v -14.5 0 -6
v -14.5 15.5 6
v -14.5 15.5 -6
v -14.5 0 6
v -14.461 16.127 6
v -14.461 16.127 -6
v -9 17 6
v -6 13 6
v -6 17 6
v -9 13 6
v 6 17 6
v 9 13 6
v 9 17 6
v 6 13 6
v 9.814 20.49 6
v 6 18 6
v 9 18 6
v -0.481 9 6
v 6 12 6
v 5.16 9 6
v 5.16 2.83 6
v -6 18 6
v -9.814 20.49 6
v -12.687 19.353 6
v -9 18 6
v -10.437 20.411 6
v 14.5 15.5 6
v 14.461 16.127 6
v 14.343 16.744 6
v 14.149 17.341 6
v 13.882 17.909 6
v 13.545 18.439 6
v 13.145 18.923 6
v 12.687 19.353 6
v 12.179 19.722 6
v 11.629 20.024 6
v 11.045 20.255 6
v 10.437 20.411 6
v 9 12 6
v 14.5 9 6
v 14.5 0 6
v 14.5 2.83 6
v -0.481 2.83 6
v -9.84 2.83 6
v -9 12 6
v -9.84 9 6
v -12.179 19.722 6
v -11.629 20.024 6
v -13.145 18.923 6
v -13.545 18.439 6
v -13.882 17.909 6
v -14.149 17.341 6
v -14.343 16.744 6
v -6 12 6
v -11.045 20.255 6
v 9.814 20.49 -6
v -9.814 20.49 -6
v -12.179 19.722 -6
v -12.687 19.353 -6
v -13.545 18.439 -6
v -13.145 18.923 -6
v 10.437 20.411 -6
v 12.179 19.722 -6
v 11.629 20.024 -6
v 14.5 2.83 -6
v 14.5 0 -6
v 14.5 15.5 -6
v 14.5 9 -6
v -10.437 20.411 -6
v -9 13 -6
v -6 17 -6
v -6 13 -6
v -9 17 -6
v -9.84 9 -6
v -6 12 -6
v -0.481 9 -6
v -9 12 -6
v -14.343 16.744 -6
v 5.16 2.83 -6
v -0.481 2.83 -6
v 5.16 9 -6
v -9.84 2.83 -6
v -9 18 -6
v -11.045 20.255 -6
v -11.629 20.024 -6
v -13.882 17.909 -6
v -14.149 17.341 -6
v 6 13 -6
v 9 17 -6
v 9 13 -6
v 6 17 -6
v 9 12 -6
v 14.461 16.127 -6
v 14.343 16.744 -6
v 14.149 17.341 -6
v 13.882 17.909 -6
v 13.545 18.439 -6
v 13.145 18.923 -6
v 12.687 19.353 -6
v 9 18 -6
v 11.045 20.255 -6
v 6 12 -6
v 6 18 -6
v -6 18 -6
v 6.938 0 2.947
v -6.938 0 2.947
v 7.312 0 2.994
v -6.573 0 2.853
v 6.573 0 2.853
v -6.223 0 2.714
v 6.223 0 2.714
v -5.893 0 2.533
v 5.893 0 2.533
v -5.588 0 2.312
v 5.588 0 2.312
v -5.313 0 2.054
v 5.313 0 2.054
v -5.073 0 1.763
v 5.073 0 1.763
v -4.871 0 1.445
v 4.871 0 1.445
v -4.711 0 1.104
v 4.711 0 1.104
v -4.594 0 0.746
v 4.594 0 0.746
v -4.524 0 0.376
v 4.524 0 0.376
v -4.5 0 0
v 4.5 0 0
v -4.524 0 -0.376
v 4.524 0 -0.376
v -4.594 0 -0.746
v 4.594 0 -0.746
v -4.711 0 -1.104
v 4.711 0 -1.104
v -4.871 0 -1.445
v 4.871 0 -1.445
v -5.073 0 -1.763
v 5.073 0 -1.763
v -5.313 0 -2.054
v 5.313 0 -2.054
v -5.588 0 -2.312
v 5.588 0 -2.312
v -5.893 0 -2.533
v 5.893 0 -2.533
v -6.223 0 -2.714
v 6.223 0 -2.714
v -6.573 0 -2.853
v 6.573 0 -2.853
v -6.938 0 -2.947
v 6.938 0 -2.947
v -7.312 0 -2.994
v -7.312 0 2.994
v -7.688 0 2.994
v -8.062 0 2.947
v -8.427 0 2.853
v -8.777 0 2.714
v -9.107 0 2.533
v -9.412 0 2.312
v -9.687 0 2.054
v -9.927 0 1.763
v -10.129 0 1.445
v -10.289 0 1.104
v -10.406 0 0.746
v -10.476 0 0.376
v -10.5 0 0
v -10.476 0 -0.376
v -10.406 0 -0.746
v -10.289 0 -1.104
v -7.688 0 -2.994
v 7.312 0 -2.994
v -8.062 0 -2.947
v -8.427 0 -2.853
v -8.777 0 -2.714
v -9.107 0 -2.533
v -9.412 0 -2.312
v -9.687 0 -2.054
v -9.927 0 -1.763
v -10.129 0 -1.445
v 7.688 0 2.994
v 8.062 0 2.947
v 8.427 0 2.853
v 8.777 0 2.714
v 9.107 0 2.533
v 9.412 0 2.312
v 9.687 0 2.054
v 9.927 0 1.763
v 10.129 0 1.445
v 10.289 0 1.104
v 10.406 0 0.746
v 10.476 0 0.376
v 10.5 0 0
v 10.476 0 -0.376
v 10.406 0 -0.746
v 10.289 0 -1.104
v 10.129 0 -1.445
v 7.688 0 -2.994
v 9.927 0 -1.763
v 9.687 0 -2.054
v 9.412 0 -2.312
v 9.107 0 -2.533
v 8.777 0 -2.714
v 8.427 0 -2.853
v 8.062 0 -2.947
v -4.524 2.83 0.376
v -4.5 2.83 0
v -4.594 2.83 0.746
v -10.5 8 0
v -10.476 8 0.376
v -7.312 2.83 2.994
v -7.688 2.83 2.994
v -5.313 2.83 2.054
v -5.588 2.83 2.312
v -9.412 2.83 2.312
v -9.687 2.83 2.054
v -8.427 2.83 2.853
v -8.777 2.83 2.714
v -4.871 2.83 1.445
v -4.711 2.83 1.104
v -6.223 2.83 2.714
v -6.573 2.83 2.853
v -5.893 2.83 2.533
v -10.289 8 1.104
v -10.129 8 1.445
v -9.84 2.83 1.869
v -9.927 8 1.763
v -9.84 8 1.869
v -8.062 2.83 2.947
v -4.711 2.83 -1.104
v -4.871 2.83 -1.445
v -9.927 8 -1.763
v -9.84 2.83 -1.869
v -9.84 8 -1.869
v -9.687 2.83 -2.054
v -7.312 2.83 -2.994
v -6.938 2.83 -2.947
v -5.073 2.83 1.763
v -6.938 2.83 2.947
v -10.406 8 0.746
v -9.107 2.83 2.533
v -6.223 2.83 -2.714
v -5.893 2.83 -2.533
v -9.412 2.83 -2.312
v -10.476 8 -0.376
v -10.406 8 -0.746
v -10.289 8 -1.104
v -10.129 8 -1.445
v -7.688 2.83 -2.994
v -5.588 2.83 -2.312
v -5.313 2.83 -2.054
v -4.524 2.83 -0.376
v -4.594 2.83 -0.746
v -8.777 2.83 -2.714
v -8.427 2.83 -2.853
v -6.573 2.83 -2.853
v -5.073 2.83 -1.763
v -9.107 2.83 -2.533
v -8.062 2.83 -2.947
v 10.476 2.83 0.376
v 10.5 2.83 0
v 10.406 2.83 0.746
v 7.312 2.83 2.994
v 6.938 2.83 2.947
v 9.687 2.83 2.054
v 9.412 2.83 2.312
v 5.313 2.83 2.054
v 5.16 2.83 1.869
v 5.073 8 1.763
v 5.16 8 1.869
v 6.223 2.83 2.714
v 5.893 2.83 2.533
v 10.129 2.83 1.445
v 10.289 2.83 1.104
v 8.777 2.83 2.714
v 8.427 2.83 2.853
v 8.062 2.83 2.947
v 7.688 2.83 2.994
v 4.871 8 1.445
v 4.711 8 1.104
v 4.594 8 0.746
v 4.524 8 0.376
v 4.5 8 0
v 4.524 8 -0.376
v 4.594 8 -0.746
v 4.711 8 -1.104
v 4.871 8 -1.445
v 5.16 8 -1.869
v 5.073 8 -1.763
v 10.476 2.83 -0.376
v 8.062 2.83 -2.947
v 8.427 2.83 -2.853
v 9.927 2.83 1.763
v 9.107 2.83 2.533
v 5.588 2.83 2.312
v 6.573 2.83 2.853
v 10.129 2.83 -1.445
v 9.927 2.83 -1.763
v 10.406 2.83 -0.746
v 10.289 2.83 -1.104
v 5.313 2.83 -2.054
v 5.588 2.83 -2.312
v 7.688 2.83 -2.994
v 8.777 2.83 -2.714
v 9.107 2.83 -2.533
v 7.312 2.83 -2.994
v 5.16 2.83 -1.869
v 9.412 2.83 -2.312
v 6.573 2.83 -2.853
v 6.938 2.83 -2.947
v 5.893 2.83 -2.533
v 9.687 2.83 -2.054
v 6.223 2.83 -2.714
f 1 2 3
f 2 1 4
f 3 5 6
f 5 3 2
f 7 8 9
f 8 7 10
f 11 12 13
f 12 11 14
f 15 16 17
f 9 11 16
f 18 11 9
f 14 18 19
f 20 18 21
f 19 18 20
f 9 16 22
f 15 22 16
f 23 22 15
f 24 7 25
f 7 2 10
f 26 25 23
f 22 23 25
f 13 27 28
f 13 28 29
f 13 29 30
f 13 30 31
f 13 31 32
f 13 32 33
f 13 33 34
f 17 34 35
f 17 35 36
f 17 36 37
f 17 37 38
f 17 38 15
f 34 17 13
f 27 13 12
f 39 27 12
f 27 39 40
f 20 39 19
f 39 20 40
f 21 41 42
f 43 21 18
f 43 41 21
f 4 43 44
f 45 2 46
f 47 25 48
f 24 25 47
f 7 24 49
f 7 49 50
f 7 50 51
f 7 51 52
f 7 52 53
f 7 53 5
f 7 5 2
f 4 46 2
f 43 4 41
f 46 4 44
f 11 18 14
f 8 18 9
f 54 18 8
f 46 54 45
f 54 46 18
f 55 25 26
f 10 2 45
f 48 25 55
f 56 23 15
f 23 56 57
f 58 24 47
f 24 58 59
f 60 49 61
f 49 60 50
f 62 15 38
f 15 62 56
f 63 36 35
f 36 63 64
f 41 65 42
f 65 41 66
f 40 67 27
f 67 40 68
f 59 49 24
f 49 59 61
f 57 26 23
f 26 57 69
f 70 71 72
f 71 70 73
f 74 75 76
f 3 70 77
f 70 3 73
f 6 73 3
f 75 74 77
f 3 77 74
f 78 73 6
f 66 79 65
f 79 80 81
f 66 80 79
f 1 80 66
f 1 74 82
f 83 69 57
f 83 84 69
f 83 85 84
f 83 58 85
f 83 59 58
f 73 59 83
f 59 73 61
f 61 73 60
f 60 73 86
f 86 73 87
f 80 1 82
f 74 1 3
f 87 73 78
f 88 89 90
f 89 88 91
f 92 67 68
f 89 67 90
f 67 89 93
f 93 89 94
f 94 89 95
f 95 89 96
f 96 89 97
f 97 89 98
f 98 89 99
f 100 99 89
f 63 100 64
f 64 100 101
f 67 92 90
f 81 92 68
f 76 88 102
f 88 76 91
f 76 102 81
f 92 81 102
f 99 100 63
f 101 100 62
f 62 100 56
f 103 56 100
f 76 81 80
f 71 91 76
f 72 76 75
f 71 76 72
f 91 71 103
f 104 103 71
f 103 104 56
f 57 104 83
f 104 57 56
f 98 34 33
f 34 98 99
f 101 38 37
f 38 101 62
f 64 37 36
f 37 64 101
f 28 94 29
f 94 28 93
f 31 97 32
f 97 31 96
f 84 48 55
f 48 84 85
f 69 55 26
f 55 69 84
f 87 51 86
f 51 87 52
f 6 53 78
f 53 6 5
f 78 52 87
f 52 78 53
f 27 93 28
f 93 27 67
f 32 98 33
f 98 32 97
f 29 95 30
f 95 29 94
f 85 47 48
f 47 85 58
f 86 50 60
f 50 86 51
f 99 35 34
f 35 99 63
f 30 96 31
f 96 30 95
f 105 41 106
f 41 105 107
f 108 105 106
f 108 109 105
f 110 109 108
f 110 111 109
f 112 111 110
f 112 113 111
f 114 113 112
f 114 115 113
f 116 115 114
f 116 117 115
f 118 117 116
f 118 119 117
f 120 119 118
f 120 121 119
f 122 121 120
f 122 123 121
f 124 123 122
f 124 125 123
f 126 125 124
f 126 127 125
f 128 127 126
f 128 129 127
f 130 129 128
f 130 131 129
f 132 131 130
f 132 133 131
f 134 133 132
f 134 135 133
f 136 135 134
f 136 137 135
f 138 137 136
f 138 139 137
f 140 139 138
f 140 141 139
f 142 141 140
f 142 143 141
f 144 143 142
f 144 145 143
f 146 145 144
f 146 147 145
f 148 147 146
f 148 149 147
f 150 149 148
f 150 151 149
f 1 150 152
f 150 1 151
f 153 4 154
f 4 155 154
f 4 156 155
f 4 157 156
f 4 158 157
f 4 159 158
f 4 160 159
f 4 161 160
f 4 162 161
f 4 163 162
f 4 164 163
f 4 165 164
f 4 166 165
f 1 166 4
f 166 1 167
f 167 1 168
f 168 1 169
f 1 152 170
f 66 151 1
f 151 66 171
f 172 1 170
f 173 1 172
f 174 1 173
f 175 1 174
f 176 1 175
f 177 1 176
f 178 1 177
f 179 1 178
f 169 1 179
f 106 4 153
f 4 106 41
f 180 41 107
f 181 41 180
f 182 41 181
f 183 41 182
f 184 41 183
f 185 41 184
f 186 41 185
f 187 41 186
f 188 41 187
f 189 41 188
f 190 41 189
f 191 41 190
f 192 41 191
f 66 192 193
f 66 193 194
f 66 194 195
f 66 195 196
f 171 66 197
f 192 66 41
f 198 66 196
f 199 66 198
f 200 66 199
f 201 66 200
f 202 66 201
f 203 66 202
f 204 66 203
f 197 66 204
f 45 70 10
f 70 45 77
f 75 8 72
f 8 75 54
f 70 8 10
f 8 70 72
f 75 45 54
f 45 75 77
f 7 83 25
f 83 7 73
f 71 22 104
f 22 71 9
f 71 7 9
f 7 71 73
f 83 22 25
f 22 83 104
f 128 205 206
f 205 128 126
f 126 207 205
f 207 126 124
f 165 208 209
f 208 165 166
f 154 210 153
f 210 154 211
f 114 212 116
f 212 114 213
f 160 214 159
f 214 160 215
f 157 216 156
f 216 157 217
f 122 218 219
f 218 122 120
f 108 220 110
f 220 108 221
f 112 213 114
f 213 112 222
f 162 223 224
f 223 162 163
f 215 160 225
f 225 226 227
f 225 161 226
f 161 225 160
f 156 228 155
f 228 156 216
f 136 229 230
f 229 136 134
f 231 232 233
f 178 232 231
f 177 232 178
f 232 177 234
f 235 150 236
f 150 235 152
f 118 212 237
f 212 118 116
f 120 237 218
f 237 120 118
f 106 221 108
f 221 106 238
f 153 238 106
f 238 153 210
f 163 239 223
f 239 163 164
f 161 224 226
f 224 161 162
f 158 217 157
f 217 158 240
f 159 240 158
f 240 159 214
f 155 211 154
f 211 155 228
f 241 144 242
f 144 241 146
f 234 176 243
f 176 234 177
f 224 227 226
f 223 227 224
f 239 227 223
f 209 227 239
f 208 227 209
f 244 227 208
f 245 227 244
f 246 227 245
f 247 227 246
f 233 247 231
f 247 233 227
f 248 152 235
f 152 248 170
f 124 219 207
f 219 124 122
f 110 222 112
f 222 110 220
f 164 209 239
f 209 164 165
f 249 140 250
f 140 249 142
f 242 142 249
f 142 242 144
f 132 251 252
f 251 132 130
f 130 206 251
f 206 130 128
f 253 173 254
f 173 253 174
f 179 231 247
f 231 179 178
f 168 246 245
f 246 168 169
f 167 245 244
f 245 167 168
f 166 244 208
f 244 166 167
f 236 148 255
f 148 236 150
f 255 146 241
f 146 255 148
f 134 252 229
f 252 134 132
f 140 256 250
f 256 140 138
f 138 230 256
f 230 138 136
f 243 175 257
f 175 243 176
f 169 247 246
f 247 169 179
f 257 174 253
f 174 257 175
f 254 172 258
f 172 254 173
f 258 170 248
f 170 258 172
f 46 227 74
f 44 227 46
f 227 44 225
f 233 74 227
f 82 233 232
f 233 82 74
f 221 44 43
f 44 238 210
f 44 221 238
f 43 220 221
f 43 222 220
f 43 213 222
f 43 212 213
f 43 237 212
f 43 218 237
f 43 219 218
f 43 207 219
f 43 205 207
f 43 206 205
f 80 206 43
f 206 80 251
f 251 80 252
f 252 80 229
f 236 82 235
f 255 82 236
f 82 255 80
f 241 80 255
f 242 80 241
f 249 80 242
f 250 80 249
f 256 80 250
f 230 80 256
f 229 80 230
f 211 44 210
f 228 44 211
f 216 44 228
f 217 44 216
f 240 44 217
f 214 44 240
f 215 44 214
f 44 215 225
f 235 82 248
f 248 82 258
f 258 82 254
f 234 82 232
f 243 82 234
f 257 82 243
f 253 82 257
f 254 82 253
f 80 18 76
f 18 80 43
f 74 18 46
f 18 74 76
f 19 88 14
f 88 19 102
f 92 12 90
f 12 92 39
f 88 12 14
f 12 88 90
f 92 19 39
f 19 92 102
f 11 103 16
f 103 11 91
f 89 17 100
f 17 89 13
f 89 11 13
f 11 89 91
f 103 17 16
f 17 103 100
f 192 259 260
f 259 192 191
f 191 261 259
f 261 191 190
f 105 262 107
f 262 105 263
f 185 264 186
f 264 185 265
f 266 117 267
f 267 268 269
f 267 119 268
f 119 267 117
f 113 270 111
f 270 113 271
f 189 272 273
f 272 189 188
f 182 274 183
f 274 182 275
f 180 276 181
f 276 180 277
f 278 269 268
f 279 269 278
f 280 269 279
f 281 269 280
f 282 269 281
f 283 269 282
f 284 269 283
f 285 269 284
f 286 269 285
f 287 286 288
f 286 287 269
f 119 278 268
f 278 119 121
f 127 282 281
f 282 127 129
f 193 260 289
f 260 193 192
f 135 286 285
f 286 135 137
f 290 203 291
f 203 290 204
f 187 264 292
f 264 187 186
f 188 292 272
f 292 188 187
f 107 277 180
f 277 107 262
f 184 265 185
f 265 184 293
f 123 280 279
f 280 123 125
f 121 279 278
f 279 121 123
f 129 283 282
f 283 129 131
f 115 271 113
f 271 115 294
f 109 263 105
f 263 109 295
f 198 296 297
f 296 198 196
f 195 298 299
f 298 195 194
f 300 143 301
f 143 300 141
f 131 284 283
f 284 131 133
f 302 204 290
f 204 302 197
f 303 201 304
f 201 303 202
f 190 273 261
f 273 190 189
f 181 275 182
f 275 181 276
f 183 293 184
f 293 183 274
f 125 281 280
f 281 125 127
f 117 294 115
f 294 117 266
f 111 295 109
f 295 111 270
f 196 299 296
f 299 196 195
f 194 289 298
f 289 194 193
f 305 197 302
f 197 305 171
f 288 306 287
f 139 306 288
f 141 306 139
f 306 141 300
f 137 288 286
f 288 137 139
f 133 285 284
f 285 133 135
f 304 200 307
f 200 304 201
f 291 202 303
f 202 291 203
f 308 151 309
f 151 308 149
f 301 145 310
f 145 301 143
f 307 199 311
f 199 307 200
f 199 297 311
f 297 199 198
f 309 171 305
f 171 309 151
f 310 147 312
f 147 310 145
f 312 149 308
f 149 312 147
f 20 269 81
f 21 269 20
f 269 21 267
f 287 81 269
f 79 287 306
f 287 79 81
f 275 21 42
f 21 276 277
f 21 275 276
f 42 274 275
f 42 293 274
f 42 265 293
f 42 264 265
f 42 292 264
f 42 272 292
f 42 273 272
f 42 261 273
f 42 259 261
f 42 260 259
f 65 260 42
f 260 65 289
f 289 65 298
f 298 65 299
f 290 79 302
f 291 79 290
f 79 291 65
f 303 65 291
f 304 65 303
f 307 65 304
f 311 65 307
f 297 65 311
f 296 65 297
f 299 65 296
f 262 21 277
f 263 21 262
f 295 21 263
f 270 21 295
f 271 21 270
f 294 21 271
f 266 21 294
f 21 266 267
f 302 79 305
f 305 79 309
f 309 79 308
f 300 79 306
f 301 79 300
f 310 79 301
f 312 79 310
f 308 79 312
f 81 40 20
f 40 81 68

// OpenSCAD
$fn = 50;


difference() {
	union() {
		translate(v = [0, 13.5000000000, -6.0000000000]) {
			rotate(a = [0, 0, 0]) {
				hull() {
					translate(v = [-9.5000000000, 2.0000000000, 0]) {
						rotate(a = [0, 0, 0]) {
							translate(v = [0, 0, 0]) {
								rotate(a = [0, 0, 0]) {
									cylinder(h = 12, r = 5);
								}
							}
						}
					}
					translate(v = [9.5000000000, 2.0000000000, 0]) {
						rotate(a = [0, 0, 0]) {
							translate(v = [0, 0, 0]) {
								rotate(a = [0, 0, 0]) {
									cylinder(h = 12, r = 5);
								}
							}
						}
					}
					translate(v = [-9.5000000000, -2.0000000000, 0]) {
						rotate(a = [0, 0, 0]) {
							translate(v = [0, 0, 0]) {
								rotate(a = [0, 0, 0]) {
									cylinder(h = 12, r = 5);
								}
							}
						}
					}
					translate(v = [9.5000000000, -2.0000000000, 0]) {
						rotate(a = [0, 0, 0]) {
							translate(v = [0, 0, 0]) {
								rotate(a = [0, 0, 0]) {
									cylinder(h = 12, r = 5);
								}
							}
						}
					}
				}
			}
		}
		translate(v = [-14.5000000000, 0, -6.0000000000]) {
			rotate(a = [0, 0, 0]) {
				cube(size = [29, 13.5000000000, 12]);
			}
		}
	}
	union() {
		translate(v = [-9.0000000000, 12.0000000000, -50]) {
			rotate(a = [0, 0, 0]) {
				cube(size = [3, 1, 100]);
			}
		}
		translate(v = [-9.0000000000, 17.0000000000, -50]) {
			rotate(a = [0, 0, 0]) {
				cube(size = [3, 1, 100]);
			}
		}
		translate(v = [-7.5000000000, 8, 0]) {
			rotate(a = [90, 0, 0]) {
				cylinder(h = 8, r = 3.0000000000);
			}
		}
		translate(v = [-9.8396880416, 9, -25]) {
			rotate(a = [90, 0, 0]) {
				cube(size = [9.3587521664, 100, 6.1700000000]);
			}
		}
		translate(v = [6.0000000000, 12.0000000000, -50]) {
			rotate(a = [0, 0, 0]) {
				cube(size = [3, 1, 100]);
			}
		}
		translate(v = [6.0000000000, 17.0000000000, -50]) {
			rotate(a = [0, 0, 0]) {
				cube(size = [3, 1, 100]);
			}
		}
		translate(v = [7.5000000000, 8, 0]) {
			rotate(a = [90, 0, 0]) {
				cylinder(h = 8, r = 3.0000000000);
			}
		}
		translate(v = [5.1603119584, 9, -25]) {
			rotate(a = [90, 0, 0]) {
				cube(size = [9.3587521664, 100, 6.1700000000]);
			}
		}
	}
}
